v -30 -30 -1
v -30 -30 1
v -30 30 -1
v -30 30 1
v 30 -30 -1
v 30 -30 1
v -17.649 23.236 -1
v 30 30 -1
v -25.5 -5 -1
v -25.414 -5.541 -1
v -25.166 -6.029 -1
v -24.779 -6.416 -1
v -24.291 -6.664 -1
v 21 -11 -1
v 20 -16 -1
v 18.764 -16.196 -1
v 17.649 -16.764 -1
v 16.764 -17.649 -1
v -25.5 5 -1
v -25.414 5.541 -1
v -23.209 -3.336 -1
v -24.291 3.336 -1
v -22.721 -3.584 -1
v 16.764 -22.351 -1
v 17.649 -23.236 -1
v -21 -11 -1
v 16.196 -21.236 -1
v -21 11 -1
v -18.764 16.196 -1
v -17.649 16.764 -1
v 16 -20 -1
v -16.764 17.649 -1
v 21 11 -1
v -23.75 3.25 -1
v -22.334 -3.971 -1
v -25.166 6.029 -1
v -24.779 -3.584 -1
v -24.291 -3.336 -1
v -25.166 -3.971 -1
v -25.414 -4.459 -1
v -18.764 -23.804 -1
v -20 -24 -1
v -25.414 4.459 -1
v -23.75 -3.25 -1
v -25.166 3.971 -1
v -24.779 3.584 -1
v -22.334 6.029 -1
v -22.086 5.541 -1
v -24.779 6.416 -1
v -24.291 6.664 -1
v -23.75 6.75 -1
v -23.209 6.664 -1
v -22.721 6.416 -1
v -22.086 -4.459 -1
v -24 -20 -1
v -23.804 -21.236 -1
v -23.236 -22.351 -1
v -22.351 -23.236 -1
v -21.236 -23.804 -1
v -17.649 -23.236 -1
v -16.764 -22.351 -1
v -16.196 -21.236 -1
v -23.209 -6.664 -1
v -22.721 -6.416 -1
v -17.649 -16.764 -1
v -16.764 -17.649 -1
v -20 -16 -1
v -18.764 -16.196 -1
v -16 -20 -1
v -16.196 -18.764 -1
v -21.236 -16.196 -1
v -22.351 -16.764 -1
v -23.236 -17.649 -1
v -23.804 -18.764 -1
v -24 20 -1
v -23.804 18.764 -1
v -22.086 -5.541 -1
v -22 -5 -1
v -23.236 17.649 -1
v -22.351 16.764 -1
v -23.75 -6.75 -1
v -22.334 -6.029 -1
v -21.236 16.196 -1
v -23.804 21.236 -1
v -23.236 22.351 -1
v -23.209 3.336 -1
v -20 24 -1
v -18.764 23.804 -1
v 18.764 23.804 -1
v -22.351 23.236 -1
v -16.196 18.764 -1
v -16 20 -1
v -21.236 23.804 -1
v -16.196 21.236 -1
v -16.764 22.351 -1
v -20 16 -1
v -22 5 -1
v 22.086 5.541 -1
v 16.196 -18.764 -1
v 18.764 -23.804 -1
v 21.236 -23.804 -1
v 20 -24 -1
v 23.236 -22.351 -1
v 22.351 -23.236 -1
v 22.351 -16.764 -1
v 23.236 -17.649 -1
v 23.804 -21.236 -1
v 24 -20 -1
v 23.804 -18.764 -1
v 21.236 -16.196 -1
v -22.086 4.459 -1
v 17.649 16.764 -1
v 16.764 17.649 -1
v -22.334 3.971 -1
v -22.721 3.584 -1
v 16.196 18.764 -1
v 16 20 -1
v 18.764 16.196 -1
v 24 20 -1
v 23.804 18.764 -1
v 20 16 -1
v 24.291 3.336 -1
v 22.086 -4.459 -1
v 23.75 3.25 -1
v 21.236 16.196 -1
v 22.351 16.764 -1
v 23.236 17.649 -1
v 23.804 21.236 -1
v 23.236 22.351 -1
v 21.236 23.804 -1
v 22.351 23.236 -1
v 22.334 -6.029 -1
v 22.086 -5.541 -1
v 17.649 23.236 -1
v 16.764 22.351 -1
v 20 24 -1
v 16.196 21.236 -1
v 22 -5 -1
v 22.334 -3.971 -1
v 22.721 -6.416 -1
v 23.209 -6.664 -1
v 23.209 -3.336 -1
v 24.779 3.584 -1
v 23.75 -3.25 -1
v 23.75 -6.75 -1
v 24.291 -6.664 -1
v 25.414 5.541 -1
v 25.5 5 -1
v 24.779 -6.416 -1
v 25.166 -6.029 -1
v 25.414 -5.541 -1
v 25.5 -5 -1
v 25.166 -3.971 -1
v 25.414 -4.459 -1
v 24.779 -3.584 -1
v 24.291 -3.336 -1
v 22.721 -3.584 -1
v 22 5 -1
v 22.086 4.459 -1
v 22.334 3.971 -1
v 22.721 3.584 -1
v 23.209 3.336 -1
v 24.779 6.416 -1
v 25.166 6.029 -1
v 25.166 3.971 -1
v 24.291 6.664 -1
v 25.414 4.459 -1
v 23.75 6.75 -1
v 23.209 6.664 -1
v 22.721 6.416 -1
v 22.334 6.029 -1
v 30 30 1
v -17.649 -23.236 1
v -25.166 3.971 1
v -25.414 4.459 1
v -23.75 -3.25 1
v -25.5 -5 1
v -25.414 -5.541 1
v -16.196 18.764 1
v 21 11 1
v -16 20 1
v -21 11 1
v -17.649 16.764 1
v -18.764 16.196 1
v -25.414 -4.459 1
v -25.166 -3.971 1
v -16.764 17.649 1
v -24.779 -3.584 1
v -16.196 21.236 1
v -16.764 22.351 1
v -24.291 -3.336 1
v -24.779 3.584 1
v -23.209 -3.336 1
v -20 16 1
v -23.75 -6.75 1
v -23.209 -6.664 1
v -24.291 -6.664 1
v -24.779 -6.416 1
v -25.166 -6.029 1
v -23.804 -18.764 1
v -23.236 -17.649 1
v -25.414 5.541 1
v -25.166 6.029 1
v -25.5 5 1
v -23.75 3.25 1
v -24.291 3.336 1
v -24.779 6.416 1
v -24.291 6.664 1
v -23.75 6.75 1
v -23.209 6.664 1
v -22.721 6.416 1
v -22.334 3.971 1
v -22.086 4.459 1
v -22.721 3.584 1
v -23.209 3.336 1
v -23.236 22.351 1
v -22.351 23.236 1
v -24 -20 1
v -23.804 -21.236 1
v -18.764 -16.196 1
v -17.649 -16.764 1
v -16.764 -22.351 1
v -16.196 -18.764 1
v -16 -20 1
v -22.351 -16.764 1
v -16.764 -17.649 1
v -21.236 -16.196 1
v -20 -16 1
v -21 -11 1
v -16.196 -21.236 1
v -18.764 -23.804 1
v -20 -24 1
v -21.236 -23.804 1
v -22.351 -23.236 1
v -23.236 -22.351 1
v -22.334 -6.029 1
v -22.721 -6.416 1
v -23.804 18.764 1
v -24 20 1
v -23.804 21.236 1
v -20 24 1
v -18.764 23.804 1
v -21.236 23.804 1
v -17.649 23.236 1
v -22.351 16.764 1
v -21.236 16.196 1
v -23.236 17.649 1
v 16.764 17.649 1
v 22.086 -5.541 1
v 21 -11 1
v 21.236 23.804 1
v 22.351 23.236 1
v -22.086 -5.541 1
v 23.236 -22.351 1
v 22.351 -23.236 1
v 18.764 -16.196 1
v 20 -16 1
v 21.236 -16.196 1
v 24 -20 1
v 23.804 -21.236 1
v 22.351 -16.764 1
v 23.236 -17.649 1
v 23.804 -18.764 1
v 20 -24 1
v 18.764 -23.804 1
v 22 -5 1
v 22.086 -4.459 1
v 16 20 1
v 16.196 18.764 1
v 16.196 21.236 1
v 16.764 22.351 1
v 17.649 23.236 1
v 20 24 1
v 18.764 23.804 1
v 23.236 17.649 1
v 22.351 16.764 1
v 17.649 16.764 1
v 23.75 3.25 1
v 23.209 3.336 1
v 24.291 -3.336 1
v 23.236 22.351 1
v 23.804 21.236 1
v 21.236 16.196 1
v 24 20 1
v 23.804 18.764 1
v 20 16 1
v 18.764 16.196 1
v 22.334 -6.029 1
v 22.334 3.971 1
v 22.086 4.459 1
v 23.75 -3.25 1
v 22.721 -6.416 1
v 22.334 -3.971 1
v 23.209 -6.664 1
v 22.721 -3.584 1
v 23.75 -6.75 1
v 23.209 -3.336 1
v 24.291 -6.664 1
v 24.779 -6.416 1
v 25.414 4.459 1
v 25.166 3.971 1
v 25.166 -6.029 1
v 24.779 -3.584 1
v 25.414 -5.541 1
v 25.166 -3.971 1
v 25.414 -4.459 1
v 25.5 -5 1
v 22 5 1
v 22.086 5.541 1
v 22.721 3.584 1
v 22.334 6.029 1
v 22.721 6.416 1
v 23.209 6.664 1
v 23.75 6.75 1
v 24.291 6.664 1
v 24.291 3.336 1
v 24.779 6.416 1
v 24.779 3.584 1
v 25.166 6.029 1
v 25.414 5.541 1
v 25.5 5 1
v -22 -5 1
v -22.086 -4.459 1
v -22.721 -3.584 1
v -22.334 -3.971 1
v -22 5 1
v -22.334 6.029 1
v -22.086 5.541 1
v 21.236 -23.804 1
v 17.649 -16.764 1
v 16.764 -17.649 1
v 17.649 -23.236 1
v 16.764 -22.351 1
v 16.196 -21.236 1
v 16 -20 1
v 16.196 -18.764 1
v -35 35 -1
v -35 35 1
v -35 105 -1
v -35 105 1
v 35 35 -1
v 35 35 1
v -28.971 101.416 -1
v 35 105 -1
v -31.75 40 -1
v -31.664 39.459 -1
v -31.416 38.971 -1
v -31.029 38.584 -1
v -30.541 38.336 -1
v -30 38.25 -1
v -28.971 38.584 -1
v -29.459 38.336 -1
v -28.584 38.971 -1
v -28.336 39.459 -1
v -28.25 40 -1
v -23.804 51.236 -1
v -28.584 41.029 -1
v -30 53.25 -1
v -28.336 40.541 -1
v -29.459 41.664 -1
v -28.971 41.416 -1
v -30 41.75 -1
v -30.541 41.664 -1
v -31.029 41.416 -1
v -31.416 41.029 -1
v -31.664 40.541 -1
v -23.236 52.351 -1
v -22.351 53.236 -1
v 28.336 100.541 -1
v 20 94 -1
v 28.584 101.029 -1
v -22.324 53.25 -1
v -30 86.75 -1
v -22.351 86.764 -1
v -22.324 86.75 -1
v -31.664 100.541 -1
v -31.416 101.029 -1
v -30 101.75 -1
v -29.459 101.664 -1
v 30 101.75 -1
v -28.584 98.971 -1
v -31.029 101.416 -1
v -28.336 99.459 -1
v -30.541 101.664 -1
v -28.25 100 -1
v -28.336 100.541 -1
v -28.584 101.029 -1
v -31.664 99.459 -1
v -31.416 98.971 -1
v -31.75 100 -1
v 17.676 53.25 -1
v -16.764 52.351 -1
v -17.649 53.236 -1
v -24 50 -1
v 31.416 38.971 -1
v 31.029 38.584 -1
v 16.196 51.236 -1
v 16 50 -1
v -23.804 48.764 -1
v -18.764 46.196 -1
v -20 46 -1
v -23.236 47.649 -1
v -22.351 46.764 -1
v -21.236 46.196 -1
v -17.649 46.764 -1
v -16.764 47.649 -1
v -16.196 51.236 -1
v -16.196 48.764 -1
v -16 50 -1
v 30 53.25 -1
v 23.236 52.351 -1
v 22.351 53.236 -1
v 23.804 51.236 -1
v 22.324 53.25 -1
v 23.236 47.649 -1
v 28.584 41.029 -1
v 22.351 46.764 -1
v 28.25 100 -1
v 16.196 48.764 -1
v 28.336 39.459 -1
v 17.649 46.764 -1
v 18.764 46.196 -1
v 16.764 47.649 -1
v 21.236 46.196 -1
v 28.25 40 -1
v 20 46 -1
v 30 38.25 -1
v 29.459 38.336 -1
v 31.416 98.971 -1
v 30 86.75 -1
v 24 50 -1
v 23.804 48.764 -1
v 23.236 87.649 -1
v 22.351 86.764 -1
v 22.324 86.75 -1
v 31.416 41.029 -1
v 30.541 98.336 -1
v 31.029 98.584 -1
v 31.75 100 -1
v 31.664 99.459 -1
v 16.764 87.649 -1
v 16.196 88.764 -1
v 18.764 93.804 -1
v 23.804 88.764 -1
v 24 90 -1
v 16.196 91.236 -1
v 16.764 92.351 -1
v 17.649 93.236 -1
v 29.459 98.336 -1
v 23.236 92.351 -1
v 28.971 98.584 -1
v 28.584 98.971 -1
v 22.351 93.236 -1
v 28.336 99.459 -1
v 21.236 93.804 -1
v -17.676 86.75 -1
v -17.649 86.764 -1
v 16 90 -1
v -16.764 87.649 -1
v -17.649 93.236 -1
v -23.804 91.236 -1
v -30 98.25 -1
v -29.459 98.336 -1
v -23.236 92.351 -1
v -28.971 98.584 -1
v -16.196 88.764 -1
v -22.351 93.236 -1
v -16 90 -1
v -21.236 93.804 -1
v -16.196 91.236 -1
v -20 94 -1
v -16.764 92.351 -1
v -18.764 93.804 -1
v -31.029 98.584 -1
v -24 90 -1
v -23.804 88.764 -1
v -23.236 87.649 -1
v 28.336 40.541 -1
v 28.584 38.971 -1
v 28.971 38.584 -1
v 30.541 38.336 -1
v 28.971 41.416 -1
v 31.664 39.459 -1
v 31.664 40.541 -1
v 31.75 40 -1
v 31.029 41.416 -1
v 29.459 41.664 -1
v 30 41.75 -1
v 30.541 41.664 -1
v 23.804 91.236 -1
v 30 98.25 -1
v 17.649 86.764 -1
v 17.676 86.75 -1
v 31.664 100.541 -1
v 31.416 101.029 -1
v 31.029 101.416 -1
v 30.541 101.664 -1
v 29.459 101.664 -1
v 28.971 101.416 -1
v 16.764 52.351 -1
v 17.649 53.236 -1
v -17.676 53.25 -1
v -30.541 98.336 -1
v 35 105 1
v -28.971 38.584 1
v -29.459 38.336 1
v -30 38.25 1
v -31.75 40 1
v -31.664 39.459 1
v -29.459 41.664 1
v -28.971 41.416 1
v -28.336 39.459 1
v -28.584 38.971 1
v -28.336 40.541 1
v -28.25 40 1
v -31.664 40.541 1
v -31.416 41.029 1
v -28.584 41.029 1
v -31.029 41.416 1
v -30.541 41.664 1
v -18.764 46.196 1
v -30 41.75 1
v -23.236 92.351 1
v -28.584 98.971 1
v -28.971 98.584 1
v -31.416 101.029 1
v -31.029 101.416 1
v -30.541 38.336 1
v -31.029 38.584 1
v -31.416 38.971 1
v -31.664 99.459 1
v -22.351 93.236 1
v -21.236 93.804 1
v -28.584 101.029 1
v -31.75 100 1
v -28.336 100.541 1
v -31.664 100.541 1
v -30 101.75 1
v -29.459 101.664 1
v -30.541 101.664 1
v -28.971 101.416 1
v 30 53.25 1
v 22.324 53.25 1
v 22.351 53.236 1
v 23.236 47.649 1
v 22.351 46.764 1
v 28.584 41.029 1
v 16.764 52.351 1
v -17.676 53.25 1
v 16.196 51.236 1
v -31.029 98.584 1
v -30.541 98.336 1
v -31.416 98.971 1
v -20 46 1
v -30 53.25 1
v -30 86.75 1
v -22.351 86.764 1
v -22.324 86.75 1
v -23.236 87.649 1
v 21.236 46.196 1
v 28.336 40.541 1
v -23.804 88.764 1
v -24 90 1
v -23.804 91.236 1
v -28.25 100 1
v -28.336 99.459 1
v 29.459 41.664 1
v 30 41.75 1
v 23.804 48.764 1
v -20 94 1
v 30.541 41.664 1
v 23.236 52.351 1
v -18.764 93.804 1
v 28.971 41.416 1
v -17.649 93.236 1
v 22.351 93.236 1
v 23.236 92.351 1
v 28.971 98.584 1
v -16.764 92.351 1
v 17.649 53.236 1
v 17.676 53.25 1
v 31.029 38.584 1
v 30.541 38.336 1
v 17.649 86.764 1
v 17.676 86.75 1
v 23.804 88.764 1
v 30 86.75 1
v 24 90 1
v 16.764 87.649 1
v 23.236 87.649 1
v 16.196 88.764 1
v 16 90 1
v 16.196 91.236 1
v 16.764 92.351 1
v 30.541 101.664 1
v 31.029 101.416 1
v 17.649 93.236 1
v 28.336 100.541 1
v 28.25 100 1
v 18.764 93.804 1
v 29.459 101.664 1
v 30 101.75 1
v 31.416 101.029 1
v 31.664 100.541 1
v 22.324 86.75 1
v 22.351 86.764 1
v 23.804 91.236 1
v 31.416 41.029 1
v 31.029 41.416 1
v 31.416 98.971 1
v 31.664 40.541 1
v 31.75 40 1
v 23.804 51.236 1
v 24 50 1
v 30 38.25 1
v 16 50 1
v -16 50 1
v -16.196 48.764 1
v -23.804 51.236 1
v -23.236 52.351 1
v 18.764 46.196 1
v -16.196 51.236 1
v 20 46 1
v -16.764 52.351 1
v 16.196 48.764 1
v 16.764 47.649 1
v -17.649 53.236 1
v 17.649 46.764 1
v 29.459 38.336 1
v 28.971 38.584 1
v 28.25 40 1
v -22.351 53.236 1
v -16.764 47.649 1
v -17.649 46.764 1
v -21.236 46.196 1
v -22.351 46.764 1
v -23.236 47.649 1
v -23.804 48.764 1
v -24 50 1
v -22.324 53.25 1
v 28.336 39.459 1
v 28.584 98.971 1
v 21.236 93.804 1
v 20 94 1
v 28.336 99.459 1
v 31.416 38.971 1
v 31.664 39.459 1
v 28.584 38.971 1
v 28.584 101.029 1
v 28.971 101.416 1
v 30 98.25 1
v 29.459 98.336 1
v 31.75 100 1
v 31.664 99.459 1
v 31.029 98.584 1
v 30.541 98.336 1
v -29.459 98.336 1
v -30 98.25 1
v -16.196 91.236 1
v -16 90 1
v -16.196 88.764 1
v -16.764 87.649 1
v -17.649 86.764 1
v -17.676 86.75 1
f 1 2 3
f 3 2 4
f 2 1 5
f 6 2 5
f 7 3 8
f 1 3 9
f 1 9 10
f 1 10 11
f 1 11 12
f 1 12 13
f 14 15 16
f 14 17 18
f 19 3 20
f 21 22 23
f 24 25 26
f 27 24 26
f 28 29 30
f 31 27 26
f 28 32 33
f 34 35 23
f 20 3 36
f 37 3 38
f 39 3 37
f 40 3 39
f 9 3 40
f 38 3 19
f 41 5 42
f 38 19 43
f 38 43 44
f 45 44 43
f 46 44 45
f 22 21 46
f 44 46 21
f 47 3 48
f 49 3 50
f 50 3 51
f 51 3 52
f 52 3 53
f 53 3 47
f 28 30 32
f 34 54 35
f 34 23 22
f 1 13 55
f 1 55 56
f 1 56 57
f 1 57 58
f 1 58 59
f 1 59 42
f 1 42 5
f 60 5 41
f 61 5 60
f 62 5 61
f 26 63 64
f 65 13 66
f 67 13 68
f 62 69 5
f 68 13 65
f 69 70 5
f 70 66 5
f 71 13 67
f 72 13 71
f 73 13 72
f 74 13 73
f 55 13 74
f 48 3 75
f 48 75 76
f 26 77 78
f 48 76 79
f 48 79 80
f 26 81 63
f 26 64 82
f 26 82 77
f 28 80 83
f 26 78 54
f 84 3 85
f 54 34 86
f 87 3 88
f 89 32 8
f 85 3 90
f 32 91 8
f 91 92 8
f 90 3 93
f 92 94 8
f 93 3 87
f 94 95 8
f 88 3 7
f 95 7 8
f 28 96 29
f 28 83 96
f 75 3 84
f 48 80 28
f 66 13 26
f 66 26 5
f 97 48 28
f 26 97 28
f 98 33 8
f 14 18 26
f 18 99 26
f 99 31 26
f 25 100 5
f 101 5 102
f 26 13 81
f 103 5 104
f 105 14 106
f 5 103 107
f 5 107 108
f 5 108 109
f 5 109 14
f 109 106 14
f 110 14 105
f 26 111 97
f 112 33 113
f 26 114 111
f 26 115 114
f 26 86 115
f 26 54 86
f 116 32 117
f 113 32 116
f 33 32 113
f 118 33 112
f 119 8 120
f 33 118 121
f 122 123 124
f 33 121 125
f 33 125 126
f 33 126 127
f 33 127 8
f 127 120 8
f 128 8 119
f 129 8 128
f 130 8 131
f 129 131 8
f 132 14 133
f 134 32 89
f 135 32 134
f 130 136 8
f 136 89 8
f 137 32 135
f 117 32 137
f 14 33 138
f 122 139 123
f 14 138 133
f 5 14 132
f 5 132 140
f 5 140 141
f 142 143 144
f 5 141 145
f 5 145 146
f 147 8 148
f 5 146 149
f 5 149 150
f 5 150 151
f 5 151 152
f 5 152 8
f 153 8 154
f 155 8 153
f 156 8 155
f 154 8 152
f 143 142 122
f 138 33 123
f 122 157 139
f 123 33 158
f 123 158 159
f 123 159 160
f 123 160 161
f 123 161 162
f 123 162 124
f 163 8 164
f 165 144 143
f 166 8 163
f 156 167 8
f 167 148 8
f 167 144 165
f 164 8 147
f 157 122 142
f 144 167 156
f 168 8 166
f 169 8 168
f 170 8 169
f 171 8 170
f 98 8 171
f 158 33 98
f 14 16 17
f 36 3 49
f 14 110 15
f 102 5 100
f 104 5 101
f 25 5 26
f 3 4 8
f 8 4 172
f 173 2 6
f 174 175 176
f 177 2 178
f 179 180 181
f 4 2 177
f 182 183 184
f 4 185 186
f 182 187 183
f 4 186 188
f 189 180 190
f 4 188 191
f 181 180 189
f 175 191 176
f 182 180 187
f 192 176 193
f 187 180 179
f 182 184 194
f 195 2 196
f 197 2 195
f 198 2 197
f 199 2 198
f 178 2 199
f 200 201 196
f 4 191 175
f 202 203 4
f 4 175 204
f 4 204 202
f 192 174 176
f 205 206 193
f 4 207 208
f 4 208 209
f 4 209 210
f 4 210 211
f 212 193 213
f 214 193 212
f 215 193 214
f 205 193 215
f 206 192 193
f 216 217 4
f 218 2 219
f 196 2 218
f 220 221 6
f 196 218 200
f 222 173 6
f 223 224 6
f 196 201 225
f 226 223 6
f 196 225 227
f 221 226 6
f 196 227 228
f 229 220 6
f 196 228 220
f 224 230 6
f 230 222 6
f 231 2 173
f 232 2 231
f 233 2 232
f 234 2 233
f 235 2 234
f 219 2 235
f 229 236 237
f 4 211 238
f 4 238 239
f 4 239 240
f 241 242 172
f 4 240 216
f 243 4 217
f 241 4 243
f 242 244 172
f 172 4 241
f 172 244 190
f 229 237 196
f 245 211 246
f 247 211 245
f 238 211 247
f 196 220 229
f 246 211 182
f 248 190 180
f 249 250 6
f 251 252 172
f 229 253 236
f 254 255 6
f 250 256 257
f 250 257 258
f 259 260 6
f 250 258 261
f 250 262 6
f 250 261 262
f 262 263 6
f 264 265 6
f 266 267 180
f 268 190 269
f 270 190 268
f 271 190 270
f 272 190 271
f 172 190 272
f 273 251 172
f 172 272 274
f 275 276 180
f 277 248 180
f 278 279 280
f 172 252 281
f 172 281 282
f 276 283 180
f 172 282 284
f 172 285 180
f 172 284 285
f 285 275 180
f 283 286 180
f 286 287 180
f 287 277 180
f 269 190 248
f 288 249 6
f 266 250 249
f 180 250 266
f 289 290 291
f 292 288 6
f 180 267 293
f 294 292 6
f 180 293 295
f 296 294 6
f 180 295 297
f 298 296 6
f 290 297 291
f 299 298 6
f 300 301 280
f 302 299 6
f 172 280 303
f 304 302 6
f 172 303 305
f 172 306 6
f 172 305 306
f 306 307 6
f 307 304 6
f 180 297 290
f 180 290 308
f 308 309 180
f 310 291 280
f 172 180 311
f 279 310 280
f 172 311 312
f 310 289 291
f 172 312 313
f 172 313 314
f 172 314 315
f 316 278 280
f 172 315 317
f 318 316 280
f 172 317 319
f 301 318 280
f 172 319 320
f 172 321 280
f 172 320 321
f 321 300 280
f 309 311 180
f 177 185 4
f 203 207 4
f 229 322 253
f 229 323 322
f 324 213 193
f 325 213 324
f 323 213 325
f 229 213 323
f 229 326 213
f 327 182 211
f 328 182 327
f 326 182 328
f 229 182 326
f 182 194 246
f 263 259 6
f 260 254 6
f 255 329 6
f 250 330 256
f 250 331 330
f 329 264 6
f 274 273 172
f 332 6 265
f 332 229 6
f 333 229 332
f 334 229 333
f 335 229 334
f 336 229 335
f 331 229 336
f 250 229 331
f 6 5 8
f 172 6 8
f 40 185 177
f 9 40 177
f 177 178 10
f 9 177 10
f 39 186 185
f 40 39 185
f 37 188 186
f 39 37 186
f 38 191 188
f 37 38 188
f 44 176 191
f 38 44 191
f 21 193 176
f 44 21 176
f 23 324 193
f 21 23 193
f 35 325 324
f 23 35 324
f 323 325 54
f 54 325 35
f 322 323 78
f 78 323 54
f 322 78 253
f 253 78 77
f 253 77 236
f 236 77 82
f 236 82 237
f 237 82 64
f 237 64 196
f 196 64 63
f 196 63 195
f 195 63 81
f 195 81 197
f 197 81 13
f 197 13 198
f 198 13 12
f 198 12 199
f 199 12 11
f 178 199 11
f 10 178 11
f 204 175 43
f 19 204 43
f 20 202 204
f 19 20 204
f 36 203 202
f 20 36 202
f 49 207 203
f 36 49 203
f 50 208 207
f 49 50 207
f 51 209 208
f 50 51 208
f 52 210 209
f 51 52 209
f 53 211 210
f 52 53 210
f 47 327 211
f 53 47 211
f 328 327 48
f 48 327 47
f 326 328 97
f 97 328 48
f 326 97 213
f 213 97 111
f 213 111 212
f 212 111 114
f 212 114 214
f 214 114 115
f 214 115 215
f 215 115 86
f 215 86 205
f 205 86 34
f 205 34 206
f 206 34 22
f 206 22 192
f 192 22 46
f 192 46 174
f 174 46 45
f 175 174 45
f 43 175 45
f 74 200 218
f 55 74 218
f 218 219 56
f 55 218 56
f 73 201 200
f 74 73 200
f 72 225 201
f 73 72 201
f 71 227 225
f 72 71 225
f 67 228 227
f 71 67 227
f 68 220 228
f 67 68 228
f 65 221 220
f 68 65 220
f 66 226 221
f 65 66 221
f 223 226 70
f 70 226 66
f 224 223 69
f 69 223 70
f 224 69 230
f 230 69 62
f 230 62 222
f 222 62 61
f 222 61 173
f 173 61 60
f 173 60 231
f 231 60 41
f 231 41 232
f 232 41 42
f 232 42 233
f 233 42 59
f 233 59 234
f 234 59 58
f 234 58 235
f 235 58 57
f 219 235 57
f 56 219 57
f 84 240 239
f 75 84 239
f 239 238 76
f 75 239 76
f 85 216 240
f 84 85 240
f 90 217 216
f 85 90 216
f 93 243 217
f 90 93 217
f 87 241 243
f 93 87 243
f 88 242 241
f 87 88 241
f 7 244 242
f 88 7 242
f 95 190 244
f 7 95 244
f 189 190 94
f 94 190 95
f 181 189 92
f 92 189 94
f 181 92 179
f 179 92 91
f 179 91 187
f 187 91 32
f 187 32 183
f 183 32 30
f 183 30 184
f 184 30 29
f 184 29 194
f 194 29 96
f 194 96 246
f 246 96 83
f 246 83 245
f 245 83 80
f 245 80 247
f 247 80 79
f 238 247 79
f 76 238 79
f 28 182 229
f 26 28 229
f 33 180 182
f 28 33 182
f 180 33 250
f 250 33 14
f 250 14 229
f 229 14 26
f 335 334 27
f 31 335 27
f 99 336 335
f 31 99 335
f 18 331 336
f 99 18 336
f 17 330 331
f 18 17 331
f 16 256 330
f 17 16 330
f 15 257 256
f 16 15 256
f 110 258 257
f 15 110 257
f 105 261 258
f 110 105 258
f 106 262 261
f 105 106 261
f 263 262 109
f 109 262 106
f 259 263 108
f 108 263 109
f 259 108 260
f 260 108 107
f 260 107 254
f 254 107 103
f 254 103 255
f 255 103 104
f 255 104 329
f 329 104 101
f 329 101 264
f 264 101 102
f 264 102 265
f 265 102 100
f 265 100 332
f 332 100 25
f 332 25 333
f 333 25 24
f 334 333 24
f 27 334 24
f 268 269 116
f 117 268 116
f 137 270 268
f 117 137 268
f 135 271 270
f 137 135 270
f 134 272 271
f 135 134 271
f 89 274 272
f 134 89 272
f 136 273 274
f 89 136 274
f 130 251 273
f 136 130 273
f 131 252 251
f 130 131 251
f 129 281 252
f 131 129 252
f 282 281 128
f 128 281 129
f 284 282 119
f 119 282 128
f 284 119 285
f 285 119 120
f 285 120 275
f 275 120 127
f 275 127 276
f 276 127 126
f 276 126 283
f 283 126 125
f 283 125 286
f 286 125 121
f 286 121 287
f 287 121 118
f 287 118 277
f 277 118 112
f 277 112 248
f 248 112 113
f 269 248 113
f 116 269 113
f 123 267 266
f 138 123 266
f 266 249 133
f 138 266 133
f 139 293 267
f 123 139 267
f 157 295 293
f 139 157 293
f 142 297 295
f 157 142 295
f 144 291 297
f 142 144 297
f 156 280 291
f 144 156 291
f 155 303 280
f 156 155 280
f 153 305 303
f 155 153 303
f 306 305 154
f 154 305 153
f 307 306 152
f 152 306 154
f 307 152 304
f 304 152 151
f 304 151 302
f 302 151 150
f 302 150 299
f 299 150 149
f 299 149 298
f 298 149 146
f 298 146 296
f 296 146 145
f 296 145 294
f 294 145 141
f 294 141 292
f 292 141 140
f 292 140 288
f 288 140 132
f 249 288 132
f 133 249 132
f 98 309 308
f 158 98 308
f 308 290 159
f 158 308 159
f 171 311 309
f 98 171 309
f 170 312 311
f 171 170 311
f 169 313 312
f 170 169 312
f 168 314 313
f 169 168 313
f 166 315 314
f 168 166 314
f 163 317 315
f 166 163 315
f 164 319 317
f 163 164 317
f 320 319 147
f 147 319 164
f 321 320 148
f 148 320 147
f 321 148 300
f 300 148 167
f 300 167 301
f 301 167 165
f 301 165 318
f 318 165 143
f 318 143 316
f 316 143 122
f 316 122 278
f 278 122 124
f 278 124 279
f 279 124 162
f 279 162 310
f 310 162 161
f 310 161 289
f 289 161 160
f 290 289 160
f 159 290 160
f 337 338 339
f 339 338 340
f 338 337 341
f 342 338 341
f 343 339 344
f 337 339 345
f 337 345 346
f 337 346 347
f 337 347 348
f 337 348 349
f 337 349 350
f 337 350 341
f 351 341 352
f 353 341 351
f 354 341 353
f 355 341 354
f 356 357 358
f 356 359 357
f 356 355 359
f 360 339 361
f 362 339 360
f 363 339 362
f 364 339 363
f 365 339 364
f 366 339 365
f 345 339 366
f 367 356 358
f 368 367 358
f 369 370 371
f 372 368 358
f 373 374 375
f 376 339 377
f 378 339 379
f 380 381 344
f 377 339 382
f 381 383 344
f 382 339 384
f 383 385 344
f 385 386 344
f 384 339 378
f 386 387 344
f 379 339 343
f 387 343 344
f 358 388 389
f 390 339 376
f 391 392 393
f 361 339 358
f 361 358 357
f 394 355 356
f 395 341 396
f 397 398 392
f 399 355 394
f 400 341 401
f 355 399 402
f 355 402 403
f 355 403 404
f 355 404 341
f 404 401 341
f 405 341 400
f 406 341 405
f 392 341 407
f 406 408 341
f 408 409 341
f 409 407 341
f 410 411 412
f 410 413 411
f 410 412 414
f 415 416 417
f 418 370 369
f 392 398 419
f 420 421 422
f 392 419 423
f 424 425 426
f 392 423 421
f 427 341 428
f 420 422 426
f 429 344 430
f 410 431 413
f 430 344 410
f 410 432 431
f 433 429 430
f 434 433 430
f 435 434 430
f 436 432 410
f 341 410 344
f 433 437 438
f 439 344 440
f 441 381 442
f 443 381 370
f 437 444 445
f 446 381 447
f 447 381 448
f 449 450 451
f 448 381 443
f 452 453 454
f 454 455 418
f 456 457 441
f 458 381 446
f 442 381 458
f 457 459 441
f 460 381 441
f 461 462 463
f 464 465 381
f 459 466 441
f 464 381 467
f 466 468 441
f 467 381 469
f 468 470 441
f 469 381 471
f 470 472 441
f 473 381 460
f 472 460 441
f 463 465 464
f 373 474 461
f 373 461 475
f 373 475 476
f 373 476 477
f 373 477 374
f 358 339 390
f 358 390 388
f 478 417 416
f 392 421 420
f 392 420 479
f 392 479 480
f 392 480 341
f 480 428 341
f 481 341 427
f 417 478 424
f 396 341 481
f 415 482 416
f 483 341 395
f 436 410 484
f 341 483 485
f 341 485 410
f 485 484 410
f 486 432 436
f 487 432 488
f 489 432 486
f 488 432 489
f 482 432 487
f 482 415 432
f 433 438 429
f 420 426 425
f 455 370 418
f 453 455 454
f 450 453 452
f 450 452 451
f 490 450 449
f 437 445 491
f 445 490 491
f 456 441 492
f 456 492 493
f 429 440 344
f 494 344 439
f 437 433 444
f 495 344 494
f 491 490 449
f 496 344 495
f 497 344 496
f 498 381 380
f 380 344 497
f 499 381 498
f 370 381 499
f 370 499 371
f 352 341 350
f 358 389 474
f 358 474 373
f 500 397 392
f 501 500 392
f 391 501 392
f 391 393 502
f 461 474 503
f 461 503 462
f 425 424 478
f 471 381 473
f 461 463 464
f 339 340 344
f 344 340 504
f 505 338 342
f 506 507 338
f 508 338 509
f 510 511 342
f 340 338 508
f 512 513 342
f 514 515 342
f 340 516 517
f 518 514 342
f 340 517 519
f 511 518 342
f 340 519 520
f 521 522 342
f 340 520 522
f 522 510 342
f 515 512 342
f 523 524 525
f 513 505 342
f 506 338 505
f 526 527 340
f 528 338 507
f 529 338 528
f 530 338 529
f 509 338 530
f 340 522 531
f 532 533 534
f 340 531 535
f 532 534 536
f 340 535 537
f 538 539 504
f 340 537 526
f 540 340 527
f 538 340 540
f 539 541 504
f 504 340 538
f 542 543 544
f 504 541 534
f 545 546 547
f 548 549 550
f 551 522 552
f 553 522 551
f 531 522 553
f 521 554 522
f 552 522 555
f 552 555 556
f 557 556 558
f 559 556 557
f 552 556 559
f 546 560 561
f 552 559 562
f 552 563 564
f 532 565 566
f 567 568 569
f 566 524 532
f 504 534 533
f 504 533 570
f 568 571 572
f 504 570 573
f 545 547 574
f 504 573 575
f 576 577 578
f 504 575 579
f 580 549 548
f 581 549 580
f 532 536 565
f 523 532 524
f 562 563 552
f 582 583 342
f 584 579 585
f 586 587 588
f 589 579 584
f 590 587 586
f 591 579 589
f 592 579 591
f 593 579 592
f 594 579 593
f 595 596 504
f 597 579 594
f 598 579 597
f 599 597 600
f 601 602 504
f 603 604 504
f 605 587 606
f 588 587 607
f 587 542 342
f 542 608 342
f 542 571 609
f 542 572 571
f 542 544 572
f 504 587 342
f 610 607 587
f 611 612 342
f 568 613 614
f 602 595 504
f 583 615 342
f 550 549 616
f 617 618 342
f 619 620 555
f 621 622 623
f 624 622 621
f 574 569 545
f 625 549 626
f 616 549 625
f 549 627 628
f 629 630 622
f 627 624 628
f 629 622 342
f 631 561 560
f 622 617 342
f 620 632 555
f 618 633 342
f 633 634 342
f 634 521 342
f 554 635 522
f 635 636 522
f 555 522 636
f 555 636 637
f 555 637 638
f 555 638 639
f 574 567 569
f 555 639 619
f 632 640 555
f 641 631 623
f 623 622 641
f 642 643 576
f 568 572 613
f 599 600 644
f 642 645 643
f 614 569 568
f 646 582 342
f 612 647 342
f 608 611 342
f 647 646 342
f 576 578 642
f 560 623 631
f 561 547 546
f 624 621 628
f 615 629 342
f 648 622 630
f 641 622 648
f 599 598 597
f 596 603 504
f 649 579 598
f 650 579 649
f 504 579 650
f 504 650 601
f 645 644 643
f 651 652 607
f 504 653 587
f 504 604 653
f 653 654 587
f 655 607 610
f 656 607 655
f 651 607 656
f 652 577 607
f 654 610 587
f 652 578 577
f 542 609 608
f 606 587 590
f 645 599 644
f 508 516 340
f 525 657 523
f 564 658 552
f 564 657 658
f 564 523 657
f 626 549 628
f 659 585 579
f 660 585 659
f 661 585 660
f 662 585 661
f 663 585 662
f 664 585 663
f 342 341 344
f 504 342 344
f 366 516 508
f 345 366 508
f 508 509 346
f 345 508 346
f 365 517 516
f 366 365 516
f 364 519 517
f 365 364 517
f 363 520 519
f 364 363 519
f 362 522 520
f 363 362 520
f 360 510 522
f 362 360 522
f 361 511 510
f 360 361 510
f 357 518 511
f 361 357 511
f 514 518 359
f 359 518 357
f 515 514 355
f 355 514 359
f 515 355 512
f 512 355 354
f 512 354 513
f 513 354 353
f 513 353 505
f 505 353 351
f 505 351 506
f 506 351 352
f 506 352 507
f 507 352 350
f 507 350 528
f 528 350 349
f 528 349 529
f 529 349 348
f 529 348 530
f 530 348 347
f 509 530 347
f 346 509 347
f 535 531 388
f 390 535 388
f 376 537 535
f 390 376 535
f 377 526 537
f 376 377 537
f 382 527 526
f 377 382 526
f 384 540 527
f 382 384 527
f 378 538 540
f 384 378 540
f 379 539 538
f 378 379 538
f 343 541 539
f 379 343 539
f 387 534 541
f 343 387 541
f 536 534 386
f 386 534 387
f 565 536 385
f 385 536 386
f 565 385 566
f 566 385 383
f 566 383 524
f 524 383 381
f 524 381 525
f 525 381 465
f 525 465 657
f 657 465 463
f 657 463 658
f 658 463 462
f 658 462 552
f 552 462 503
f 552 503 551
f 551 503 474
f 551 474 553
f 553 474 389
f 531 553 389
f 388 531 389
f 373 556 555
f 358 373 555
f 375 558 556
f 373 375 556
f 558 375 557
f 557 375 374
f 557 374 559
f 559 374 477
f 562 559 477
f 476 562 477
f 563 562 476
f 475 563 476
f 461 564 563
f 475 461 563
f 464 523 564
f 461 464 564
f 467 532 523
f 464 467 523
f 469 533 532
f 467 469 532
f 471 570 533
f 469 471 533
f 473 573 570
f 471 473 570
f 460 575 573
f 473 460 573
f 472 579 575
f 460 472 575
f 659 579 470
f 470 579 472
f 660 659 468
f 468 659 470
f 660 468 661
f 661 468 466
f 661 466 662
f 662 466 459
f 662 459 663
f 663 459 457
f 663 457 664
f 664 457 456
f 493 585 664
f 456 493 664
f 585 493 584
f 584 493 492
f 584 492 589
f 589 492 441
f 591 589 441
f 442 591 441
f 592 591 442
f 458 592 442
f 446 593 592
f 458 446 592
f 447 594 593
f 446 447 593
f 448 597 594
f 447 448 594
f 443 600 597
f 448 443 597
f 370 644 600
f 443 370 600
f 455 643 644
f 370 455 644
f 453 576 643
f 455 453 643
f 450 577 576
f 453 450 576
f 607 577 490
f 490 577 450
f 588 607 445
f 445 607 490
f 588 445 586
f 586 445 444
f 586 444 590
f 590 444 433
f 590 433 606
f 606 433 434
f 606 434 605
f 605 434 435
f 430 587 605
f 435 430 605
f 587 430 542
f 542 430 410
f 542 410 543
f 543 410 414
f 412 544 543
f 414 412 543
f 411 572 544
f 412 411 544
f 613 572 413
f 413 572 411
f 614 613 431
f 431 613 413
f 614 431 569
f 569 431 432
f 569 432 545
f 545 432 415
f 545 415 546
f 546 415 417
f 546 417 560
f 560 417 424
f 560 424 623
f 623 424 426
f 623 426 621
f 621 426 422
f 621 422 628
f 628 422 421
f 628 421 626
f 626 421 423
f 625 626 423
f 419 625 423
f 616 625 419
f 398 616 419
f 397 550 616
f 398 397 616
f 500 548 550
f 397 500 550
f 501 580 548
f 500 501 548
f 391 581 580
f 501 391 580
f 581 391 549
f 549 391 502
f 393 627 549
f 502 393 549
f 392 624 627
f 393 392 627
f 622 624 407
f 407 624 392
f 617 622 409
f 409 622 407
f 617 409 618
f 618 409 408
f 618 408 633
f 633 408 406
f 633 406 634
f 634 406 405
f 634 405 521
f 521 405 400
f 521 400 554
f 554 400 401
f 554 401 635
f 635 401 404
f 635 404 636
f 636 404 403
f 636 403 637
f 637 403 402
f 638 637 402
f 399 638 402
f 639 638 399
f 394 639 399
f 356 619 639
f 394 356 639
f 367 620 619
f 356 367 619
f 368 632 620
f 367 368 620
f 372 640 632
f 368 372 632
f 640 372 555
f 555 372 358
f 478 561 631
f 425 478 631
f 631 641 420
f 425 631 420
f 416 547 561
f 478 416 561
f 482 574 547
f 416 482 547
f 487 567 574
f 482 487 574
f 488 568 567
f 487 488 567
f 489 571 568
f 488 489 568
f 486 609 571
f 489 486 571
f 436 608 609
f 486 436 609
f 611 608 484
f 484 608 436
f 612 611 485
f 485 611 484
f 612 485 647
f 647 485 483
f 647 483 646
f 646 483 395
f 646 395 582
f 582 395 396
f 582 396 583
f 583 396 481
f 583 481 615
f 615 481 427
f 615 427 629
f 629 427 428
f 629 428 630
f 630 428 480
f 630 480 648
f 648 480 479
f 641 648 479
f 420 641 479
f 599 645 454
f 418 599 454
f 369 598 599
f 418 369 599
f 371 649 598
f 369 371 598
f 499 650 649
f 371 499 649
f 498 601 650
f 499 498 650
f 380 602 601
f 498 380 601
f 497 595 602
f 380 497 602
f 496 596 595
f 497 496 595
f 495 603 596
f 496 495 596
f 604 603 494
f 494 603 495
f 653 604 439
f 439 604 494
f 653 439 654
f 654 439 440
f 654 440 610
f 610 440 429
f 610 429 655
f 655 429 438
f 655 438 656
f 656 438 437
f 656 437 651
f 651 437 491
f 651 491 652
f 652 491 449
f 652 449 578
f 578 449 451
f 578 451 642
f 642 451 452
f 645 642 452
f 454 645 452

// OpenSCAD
ancho_pared=5;

servo_montaje();

translate([0,70,0]) rotate([00,0,0])
servo_placa();
module servo_montaje(){
	difference(){
		
		//CUERPO CENTRAL
		union(){
			cube([60,60,2], center=true);
			
		/*
			translate([15,14,2.5]) rotate([90,0,0])
			cylinder(r=20/2,h=2, $fn=20, center=true);
			translate([15,-14,2.5]) rotate([90,0,0])
			cylinder(r=20/2,h=2, $fn=20, center=true);
			translate([-15,14,2.5]) rotate([90,0,0])
			cylinder(r=20/2,h=2, $fn=20, center=true);
			translate([-15,-14,2.5]) rotate([90,0,0])
			cylinder(r=20/2,h=2, $fn=20, center=true);
			*/

			//pestañas de montaje
			
			
			/*
			translate([2.5,-60/2,5]) rotate([0,0,0])
			cube([65,10,4],center=true);
			
			
			
			//suplemento
			translate([60/2,0,0]) rotate([0,0,0])
			cube([10,50,14],center=true);
			translate([10,0,3]) rotate([0,0,0])
		//cube([50,42,16],center=true);
		cylinder(r=15.5/2,h=14, $fn=6, center=true)
			*/
			
		}
		
		//VACIADO CENTRAL
		translate([0,0,0]) rotate([0,0,0])
		cube([42,22,40],center=true);
		
		translate([0,0,-11]) rotate([0,0,0])
		cube([80,80,20],center=true);
			
		//VACIADO CENTRAL
		
		
		//AGUJEROS DE MONTAJE
		translate([-23.75,-5,0]) rotate([0,0,0])
		cylinder(r=3.5/2,h=100, $fn=20, center=true);

		translate([-23.75,5,0]) rotate([0,0,0])
		cylinder(r=3.5/2,h=100, $fn=20, center=true);

		translate([23.75,-5,0]) rotate([0,0,0])
		cylinder(r=3.5/2,h=100, $fn=20, center=true);

		translate([23.75,5,0]) rotate([0,0,0])
		cylinder(r=3.5/2,h=100, $fn=20, center=true);


		//bujeros damper
		translate([20,20,0]) rotate([0,0,0])
		cylinder(r=8/2,h=100, $fn=20, center=true);
		
		translate([-20,20,0]) rotate([0,0,0])
		cylinder(r=8/2,h=100, $fn=20, center=true);

		translate([20,-20,0]) rotate([0,0,0])
		cylinder(r=8/2,h=100, $fn=20, center=true);		

		translate([-20,-20,0]) rotate([0,0,0])
		cylinder(r=8/2,h=100, $fn=20, center=true);
		
		//
		}

		
		
}
module servo_placa(){
	difference(){
		
		//CUERPO CENTRAL
		union(){
			cube([70,70,2], center=true);
			

			
			

			//pestañas de montaje
			
			
			/*
			translate([2.5,-60/2,5]) rotate([0,0,0])
			cube([65,10,4],center=true);
			
			
			
			//suplemento
			translate([60/2,0,0]) rotate([0,0,0])
			cube([10,50,14],center=true);
			translate([10,0,3]) rotate([0,0,0])
		//cube([50,42,16],center=true);
		cylinder(r=15.5/2,h=14, $fn=6, center=true)
			*/
			
		}
		
		//VACIADO CENTRAL
		translate([0,0,0]) rotate([0,0,0])
		cube([60,33.5,40],center=true);
		
		
			
		
		
		//AGUJEROS DE MONTAJE
		translate([-30,-30,0]) rotate([0,0,0])
		cylinder(r=3.5/2,h=100, $fn=20, center=true);

		translate([-30,30,0]) rotate([0,0,0])
		cylinder(r=3.5/2,h=100, $fn=20, center=true);

		translate([30,30,0]) rotate([0,0,0])
		cylinder(r=3.5/2,h=100, $fn=20, center=true);

		translate([30,-30,0]) rotate([0,0,0])
		cylinder(r=3.5/2,h=100, $fn=20, center=true);


		//bujeros damper
		translate([20,20,0]) rotate([0,0,0])
		cylinder(r=8/2,h=100, $fn=20, center=true);
		
		translate([-20,20,0]) rotate([0,0,0])
		cylinder(r=8/2,h=100, $fn=20, center=true);

		translate([20,-20,0]) rotate([0,0,0])
		cylinder(r=8/2,h=100, $fn=20, center=true);		

		translate([-20,-20,0]) rotate([0,0,0])
		cylinder(r=8/2,h=100, $fn=20, center=true);
		
		//
		}

		
		
}
